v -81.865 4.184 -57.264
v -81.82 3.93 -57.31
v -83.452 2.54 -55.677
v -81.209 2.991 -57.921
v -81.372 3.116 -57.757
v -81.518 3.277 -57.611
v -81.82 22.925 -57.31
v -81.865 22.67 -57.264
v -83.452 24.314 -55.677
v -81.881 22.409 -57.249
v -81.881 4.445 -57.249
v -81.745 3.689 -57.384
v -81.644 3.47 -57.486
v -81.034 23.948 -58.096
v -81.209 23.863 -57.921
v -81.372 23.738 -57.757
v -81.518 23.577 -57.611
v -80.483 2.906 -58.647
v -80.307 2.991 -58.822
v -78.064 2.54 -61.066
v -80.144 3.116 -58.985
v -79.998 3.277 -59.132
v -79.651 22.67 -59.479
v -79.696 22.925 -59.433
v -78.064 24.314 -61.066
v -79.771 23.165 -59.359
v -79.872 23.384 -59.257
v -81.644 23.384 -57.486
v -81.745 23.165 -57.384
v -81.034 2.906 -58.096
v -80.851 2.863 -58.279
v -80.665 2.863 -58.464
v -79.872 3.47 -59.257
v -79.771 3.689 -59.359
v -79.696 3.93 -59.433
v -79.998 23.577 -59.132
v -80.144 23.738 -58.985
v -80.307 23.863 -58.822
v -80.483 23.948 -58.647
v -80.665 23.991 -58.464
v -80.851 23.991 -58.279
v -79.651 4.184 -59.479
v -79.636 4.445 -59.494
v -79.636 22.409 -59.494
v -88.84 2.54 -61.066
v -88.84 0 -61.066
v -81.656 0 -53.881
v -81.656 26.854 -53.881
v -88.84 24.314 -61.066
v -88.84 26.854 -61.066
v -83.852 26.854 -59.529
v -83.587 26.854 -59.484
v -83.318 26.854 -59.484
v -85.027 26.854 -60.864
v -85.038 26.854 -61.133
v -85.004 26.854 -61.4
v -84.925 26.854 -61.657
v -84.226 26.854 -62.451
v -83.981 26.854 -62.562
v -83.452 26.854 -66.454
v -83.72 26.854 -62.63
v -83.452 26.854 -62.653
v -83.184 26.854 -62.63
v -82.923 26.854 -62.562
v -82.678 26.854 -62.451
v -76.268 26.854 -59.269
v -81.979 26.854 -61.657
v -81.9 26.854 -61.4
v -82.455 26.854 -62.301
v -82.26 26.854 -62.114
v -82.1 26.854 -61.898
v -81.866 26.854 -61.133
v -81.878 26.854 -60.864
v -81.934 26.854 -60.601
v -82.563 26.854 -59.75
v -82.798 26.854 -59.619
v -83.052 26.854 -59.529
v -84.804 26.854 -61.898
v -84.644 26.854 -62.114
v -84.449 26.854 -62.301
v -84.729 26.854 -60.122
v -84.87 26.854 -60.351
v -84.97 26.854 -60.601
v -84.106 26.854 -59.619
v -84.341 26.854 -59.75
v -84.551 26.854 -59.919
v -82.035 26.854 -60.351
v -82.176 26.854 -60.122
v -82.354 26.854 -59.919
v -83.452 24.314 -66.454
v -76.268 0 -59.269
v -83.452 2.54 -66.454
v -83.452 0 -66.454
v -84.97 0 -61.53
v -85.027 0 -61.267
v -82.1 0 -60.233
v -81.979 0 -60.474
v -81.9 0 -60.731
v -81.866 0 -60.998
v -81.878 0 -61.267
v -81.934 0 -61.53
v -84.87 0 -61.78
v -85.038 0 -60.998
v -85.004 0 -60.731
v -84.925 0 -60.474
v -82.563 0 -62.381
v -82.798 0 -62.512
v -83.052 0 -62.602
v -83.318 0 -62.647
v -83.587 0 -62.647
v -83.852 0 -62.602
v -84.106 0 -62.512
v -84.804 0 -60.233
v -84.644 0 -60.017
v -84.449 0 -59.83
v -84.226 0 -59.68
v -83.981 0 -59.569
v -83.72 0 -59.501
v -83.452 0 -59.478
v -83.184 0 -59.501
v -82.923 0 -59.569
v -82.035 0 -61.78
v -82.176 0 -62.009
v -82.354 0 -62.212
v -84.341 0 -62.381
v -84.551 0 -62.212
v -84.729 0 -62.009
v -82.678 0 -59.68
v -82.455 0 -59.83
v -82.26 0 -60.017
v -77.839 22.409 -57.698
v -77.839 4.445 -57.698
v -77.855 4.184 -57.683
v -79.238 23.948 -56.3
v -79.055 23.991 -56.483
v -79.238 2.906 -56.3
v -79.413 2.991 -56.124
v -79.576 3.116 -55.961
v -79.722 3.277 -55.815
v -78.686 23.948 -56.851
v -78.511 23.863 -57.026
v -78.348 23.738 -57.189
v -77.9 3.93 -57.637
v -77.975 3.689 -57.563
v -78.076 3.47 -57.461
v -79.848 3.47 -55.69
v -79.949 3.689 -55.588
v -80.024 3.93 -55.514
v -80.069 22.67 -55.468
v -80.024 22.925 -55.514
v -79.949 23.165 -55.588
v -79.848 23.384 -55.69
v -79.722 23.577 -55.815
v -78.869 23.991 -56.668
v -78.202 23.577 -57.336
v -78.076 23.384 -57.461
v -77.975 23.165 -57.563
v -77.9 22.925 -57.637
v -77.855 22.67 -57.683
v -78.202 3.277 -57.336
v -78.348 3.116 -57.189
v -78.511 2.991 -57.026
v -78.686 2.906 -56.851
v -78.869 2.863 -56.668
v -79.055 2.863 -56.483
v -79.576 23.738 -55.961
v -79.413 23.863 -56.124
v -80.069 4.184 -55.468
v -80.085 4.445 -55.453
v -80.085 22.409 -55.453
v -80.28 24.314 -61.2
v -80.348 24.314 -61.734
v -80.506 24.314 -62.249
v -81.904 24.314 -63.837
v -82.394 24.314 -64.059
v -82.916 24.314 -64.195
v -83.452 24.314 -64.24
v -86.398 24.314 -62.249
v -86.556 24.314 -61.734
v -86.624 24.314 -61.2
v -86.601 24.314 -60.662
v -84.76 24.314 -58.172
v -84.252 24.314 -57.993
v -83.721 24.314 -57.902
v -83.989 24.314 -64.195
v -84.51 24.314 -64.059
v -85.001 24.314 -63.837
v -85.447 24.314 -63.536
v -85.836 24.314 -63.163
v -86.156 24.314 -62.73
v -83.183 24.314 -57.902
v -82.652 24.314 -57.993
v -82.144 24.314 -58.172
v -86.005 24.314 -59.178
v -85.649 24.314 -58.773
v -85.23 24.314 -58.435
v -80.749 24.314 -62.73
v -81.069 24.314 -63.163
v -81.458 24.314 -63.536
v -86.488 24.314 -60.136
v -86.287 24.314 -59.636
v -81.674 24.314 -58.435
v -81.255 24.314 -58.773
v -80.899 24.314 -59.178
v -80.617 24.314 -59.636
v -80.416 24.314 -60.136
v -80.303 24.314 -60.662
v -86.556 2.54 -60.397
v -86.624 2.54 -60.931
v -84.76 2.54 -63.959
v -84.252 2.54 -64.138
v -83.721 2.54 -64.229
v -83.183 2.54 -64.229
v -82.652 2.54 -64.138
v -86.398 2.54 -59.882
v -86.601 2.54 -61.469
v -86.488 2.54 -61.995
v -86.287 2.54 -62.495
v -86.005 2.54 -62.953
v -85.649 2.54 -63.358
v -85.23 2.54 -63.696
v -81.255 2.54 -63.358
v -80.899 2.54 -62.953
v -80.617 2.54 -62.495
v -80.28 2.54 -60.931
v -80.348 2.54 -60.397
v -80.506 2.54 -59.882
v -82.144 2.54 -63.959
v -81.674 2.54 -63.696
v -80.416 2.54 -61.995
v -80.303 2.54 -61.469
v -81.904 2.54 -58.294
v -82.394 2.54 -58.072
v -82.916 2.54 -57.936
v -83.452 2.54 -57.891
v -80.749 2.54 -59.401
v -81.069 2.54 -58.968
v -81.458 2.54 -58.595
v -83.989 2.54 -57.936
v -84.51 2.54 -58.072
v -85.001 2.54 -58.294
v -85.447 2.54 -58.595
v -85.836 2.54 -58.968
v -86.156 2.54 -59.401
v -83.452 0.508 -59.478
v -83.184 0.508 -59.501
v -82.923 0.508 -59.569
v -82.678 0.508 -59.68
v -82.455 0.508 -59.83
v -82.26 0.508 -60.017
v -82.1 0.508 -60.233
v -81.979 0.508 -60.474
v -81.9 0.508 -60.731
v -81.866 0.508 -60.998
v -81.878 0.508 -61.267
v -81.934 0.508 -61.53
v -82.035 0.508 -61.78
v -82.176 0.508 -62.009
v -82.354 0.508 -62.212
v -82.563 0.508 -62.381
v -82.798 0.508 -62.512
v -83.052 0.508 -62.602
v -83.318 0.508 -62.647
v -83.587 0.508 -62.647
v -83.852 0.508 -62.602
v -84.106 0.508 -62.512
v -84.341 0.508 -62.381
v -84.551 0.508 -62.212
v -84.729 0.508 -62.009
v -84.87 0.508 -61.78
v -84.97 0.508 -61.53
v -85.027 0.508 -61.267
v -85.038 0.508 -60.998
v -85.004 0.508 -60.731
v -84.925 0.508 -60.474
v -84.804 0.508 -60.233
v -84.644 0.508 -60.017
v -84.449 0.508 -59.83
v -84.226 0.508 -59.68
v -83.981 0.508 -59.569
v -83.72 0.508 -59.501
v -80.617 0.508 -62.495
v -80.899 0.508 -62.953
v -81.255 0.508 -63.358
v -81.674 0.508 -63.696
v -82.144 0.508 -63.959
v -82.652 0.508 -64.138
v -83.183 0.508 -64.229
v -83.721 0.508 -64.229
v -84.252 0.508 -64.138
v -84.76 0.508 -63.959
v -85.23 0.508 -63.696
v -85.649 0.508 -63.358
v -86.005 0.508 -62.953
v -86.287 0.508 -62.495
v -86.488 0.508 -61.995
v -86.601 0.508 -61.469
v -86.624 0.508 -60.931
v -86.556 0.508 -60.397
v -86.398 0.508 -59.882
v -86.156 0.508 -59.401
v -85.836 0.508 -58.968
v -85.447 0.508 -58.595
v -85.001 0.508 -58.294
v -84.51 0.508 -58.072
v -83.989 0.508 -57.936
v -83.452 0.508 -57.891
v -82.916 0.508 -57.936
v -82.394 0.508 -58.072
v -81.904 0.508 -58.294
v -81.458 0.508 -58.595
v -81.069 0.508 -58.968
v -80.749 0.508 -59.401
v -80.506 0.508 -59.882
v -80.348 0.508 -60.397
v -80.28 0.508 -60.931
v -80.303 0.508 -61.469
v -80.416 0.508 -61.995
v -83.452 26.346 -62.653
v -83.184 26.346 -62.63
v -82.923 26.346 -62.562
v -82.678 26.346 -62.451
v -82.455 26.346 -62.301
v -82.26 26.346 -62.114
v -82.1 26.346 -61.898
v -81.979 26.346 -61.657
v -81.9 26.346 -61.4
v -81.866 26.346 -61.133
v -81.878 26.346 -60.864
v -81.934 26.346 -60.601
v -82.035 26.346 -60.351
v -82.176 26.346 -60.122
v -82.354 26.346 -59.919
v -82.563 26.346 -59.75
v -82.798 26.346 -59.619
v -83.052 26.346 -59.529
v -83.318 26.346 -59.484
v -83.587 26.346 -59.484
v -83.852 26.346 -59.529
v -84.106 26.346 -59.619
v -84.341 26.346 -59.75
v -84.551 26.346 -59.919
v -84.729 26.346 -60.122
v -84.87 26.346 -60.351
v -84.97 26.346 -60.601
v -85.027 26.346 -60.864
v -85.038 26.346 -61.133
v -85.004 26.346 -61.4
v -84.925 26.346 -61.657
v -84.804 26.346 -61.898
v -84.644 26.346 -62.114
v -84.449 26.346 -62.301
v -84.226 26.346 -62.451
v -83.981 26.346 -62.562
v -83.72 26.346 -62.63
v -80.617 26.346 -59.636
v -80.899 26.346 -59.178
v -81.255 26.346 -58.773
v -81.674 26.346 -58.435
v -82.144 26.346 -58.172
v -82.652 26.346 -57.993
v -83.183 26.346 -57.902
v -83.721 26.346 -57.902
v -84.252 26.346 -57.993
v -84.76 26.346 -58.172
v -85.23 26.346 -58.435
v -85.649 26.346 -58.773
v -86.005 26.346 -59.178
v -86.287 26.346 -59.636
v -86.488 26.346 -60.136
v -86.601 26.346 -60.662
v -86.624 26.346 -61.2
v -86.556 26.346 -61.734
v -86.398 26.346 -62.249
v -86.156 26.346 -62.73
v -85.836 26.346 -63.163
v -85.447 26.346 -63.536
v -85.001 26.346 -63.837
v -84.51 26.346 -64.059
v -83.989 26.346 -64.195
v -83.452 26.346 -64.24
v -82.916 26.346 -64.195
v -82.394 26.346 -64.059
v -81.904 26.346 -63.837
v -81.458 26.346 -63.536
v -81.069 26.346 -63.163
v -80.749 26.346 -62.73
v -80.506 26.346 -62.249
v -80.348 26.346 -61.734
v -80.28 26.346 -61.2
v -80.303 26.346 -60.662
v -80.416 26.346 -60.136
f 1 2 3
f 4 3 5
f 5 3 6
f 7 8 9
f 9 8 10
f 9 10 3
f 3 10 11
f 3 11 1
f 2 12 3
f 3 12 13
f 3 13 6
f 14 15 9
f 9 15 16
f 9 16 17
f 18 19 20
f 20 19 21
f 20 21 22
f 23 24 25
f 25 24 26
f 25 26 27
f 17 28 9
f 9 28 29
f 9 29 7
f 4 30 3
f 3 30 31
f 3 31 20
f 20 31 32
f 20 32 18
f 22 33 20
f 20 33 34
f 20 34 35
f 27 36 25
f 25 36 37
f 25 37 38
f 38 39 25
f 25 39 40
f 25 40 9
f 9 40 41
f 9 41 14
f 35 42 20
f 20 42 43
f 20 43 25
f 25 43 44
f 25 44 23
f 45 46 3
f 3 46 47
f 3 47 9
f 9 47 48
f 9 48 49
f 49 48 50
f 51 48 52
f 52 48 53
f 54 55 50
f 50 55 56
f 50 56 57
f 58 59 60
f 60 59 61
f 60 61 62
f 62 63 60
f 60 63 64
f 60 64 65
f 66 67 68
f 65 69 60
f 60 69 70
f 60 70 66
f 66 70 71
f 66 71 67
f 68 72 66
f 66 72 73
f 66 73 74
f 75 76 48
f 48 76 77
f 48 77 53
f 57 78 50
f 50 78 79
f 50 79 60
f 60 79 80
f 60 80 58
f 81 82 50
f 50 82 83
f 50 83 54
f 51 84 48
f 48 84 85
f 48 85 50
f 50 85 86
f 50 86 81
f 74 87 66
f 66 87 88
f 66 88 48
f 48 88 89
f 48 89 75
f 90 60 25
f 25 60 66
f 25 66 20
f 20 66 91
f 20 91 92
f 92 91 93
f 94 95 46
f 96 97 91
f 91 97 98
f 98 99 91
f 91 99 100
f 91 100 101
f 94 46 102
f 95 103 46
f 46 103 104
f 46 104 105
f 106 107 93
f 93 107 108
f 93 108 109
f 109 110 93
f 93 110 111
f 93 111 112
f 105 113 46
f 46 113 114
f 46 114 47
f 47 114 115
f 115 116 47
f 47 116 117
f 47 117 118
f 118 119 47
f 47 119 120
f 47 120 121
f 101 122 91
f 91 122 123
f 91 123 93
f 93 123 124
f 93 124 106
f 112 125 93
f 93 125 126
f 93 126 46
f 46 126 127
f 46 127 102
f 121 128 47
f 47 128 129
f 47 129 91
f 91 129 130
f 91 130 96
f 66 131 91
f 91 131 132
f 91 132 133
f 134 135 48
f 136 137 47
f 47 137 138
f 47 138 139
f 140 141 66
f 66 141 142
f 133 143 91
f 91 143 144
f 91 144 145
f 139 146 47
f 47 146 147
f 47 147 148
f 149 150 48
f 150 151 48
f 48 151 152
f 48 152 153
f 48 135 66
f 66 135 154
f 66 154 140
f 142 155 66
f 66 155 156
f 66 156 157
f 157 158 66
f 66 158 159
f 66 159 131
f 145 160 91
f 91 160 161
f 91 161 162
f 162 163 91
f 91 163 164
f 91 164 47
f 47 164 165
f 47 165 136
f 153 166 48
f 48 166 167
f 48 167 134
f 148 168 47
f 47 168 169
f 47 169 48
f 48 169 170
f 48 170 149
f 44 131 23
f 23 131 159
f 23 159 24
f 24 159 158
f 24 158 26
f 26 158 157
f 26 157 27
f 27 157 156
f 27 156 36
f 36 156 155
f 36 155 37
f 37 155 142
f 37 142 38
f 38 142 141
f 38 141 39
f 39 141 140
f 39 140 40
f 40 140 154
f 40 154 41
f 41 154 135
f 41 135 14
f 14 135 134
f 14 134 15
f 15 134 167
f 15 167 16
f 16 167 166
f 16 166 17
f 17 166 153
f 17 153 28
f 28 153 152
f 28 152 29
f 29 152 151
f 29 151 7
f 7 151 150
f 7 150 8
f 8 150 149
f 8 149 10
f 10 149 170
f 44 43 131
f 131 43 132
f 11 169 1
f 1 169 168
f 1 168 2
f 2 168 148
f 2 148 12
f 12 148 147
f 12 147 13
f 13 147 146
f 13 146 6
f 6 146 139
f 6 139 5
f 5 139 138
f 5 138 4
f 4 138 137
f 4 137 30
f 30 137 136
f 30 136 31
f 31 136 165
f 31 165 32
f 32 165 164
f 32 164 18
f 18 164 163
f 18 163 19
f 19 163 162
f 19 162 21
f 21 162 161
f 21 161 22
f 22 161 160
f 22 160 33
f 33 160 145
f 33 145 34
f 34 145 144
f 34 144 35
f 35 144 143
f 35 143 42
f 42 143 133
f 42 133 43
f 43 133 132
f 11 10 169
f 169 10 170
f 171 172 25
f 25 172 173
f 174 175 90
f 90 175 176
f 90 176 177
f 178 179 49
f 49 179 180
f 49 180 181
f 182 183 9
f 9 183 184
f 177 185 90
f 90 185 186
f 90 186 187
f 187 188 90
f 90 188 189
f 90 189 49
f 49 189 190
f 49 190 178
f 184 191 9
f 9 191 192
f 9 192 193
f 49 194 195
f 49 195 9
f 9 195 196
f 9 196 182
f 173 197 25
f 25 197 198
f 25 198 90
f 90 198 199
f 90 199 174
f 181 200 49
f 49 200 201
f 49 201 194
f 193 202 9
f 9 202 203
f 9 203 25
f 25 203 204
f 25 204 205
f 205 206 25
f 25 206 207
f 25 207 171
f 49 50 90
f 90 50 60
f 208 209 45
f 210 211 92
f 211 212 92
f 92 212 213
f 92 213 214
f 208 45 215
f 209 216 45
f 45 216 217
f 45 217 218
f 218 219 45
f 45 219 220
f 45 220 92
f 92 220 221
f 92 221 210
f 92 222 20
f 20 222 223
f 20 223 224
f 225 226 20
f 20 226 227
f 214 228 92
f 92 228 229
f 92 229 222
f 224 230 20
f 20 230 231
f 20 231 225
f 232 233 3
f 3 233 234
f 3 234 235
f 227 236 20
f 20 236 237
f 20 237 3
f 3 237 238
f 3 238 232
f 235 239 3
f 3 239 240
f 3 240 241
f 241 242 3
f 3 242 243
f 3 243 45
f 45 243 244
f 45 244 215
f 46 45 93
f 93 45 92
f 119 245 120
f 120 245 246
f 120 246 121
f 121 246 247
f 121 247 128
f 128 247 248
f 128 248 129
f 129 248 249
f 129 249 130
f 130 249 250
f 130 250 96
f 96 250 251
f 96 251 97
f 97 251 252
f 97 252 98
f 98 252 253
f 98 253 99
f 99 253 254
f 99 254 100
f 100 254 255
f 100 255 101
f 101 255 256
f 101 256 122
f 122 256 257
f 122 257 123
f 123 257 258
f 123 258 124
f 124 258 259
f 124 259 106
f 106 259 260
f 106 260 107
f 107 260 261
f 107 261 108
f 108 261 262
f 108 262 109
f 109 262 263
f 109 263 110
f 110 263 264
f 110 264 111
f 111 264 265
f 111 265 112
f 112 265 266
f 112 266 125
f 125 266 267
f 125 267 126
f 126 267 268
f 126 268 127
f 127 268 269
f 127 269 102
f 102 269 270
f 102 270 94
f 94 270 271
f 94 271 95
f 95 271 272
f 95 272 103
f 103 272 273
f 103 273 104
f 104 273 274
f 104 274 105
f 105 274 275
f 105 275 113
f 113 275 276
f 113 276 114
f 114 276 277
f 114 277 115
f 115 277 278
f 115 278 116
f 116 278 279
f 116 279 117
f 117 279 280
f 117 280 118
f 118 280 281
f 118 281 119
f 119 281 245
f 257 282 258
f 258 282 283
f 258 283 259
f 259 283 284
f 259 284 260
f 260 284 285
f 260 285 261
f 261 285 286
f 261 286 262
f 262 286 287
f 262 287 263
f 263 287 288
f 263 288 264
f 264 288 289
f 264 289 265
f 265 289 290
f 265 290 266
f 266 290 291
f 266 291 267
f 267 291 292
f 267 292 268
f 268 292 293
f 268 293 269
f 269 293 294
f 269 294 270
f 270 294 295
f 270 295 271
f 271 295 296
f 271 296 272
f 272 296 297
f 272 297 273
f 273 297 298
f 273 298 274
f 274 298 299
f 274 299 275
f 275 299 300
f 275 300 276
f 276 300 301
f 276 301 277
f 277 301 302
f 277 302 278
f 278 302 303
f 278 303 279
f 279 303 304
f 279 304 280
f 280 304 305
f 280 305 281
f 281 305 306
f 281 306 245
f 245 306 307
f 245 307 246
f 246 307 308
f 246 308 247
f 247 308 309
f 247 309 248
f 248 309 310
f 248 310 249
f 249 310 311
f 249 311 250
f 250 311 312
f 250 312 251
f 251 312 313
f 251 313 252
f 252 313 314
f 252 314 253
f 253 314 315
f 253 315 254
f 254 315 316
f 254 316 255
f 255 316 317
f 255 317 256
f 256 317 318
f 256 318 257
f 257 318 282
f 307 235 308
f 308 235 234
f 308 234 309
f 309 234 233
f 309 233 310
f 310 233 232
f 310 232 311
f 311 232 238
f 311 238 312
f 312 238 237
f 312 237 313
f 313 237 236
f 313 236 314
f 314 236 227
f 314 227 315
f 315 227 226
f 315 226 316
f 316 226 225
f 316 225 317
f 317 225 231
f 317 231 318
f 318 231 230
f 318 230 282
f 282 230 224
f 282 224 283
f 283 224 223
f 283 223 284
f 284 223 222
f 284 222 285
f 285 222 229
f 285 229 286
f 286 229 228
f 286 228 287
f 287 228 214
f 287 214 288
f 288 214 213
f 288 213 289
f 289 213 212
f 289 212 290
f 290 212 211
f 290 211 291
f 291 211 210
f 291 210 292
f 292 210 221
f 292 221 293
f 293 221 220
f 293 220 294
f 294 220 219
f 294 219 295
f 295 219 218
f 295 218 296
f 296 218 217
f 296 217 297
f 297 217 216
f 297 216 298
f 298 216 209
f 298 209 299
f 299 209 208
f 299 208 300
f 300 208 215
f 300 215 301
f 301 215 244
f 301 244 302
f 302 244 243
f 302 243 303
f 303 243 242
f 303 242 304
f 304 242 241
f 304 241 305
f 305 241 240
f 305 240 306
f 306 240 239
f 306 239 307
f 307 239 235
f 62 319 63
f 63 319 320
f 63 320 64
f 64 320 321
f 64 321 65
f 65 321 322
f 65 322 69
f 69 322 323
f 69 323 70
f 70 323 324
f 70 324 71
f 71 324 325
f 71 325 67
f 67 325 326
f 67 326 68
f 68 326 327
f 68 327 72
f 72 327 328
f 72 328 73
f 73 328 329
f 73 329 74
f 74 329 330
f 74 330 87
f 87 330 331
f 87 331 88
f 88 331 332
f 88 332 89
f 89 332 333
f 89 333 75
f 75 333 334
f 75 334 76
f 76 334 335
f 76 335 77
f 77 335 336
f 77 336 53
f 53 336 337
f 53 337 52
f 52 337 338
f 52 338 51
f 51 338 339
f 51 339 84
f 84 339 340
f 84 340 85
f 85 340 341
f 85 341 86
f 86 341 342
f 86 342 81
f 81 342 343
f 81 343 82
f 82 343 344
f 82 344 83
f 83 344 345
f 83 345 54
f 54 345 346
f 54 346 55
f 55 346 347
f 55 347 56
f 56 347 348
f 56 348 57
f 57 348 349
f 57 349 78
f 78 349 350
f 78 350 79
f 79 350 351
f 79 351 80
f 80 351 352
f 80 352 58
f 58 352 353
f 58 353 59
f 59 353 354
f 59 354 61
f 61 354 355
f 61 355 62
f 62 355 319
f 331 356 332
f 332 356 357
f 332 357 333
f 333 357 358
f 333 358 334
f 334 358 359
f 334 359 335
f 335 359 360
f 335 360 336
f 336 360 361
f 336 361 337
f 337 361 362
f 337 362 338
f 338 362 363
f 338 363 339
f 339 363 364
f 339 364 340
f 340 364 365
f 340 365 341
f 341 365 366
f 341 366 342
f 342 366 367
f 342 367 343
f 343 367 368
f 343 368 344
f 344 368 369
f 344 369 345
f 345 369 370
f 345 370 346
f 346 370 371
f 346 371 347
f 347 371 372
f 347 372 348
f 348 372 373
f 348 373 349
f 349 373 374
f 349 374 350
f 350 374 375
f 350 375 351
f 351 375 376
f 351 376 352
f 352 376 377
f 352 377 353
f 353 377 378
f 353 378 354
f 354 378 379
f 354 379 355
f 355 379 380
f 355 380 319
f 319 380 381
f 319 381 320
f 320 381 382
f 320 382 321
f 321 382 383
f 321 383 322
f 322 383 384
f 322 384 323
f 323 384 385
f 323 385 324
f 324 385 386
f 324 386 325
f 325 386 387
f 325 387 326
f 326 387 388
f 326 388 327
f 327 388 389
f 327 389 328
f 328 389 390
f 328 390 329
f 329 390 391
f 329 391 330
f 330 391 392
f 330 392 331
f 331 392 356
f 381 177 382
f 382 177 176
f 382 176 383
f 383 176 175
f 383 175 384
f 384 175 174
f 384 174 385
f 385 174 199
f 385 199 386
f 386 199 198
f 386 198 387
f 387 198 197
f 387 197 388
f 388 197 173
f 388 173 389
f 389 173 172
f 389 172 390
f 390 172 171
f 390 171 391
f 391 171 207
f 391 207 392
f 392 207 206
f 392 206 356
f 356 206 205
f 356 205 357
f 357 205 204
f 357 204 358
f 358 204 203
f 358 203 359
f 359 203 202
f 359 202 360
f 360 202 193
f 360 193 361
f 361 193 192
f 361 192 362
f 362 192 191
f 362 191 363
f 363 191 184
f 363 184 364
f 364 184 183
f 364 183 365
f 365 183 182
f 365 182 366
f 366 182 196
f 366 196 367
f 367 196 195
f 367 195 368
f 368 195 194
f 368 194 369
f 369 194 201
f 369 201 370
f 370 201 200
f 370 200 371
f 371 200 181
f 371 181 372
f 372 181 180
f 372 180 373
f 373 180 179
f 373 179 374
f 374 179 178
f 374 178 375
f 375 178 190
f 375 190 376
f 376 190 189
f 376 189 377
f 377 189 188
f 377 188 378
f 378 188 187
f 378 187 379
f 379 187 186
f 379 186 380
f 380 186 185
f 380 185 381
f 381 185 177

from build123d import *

# Parameters (mm, degrees)
SKETCH1_W                                           = 7.62
SKETCH1_H                                           = 26.854156748
BOSS_EXTRUDE1_DEPTH                                 = 2.54
SKETCH2_W                                           = 7.62
SKETCH2_H                                           = 2.54
BOSS_EXTRUDE2_DEPTH                                 = 7.62
CBORE_FOR_4_BINDING_HEAD_MACHINE_SCREW3_D           = 3.175
CBORE_FOR_4_BINDING_HEAD_MACHINE_SCREW3_DEPTH       = 2.54
CBORE_FOR_4_BINDING_HEAD_MACHINE_SCREW3_CBORE_D     = 6.35
CBORE_FOR_4_BINDING_HEAD_MACHINE_SCREW3_CBORE_DEPTH = 2.032
CBORE_FOR_4_BINDING_HEAD_MACHINE_SCREW4_D           = 3.175
CBORE_FOR_4_BINDING_HEAD_MACHINE_SCREW4_DEPTH       = 2.54
CBORE_FOR_4_BINDING_HEAD_MACHINE_SCREW4_CBORE_D     = 6.35
CBORE_FOR_4_BINDING_HEAD_MACHINE_SCREW4_CBORE_DEPTH = 2.032


with BuildPart() as part:
    # Sketch1 → Boss-Extrude1 (new body)
    with BuildSketch(Plane(origin=(-67.768700971, 0, -67.768700971), x_dir=(0.707106781, 0, -0.707106781), z_dir=(0.707106781, 0, 0.707106781))):
        with Locations((-15.829754227, 13.427078374)):
            Rectangle(SKETCH1_W, SKETCH1_H)
        with BuildLine():
            Line((-14.242254227, 22.409156748), (-14.242254227, 4.445))
            ThreePointArc((-14.242254227, 4.445), (-15.829754227, 2.8575), (-17.417254227, 4.445))
            Line((-17.417254227, 4.445), (-17.417254227, 22.409156748))
            ThreePointArc((-17.417254227, 22.409156748), (-15.829754227, 23.996656748), (-14.242254227, 22.409156748))
        make_face(mode=Mode.SUBTRACT)
    extrude(amount=-BOSS_EXTRUDE1_DEPTH)

    # Sketch2 → Boss-Extrude2 (add)
    with BuildSketch(Plane(origin=(-69.564752195, 0, -69.564752195), x_dir=(-0.707106781, 0, 0.707106781), z_dir=(-0.707106781, 0, -0.707106781))):
        with Locations((15.829754227, 25.584156748)):
            Rectangle(SKETCH2_W, SKETCH2_H)
        with Locations((15.829754227, 1.27)):
            Rectangle(SKETCH2_W, SKETCH2_H)
    extrude(amount=BOSS_EXTRUDE2_DEPTH)

    # CBORE for #4 Binding Head Machine Screw3
    with Locations(Plane(origin=(0, 2.54, 0), x_dir=(1, 0, 0), z_dir=(0, 1, 0))):
        with Locations((-83.45215559, 61.065502473)):
            CounterBoreHole(CBORE_FOR_4_BINDING_HEAD_MACHINE_SCREW3_D / 2, CBORE_FOR_4_BINDING_HEAD_MACHINE_SCREW3_CBORE_D / 2, CBORE_FOR_4_BINDING_HEAD_MACHINE_SCREW3_CBORE_DEPTH, depth=CBORE_FOR_4_BINDING_HEAD_MACHINE_SCREW3_DEPTH)

    # CBORE for #4 Binding Head Machine Screw4
    with Locations(Plane(origin=(0, 24.314156748, 0), x_dir=(-1, 0, 0), z_dir=(0, -1, 0))):
        with Locations((83.45215559, 61.065502473)):
            CounterBoreHole(CBORE_FOR_4_BINDING_HEAD_MACHINE_SCREW4_D / 2, CBORE_FOR_4_BINDING_HEAD_MACHINE_SCREW4_CBORE_D / 2, CBORE_FOR_4_BINDING_HEAD_MACHINE_SCREW4_CBORE_DEPTH, depth=CBORE_FOR_4_BINDING_HEAD_MACHINE_SCREW4_DEPTH)


solid = part.part
